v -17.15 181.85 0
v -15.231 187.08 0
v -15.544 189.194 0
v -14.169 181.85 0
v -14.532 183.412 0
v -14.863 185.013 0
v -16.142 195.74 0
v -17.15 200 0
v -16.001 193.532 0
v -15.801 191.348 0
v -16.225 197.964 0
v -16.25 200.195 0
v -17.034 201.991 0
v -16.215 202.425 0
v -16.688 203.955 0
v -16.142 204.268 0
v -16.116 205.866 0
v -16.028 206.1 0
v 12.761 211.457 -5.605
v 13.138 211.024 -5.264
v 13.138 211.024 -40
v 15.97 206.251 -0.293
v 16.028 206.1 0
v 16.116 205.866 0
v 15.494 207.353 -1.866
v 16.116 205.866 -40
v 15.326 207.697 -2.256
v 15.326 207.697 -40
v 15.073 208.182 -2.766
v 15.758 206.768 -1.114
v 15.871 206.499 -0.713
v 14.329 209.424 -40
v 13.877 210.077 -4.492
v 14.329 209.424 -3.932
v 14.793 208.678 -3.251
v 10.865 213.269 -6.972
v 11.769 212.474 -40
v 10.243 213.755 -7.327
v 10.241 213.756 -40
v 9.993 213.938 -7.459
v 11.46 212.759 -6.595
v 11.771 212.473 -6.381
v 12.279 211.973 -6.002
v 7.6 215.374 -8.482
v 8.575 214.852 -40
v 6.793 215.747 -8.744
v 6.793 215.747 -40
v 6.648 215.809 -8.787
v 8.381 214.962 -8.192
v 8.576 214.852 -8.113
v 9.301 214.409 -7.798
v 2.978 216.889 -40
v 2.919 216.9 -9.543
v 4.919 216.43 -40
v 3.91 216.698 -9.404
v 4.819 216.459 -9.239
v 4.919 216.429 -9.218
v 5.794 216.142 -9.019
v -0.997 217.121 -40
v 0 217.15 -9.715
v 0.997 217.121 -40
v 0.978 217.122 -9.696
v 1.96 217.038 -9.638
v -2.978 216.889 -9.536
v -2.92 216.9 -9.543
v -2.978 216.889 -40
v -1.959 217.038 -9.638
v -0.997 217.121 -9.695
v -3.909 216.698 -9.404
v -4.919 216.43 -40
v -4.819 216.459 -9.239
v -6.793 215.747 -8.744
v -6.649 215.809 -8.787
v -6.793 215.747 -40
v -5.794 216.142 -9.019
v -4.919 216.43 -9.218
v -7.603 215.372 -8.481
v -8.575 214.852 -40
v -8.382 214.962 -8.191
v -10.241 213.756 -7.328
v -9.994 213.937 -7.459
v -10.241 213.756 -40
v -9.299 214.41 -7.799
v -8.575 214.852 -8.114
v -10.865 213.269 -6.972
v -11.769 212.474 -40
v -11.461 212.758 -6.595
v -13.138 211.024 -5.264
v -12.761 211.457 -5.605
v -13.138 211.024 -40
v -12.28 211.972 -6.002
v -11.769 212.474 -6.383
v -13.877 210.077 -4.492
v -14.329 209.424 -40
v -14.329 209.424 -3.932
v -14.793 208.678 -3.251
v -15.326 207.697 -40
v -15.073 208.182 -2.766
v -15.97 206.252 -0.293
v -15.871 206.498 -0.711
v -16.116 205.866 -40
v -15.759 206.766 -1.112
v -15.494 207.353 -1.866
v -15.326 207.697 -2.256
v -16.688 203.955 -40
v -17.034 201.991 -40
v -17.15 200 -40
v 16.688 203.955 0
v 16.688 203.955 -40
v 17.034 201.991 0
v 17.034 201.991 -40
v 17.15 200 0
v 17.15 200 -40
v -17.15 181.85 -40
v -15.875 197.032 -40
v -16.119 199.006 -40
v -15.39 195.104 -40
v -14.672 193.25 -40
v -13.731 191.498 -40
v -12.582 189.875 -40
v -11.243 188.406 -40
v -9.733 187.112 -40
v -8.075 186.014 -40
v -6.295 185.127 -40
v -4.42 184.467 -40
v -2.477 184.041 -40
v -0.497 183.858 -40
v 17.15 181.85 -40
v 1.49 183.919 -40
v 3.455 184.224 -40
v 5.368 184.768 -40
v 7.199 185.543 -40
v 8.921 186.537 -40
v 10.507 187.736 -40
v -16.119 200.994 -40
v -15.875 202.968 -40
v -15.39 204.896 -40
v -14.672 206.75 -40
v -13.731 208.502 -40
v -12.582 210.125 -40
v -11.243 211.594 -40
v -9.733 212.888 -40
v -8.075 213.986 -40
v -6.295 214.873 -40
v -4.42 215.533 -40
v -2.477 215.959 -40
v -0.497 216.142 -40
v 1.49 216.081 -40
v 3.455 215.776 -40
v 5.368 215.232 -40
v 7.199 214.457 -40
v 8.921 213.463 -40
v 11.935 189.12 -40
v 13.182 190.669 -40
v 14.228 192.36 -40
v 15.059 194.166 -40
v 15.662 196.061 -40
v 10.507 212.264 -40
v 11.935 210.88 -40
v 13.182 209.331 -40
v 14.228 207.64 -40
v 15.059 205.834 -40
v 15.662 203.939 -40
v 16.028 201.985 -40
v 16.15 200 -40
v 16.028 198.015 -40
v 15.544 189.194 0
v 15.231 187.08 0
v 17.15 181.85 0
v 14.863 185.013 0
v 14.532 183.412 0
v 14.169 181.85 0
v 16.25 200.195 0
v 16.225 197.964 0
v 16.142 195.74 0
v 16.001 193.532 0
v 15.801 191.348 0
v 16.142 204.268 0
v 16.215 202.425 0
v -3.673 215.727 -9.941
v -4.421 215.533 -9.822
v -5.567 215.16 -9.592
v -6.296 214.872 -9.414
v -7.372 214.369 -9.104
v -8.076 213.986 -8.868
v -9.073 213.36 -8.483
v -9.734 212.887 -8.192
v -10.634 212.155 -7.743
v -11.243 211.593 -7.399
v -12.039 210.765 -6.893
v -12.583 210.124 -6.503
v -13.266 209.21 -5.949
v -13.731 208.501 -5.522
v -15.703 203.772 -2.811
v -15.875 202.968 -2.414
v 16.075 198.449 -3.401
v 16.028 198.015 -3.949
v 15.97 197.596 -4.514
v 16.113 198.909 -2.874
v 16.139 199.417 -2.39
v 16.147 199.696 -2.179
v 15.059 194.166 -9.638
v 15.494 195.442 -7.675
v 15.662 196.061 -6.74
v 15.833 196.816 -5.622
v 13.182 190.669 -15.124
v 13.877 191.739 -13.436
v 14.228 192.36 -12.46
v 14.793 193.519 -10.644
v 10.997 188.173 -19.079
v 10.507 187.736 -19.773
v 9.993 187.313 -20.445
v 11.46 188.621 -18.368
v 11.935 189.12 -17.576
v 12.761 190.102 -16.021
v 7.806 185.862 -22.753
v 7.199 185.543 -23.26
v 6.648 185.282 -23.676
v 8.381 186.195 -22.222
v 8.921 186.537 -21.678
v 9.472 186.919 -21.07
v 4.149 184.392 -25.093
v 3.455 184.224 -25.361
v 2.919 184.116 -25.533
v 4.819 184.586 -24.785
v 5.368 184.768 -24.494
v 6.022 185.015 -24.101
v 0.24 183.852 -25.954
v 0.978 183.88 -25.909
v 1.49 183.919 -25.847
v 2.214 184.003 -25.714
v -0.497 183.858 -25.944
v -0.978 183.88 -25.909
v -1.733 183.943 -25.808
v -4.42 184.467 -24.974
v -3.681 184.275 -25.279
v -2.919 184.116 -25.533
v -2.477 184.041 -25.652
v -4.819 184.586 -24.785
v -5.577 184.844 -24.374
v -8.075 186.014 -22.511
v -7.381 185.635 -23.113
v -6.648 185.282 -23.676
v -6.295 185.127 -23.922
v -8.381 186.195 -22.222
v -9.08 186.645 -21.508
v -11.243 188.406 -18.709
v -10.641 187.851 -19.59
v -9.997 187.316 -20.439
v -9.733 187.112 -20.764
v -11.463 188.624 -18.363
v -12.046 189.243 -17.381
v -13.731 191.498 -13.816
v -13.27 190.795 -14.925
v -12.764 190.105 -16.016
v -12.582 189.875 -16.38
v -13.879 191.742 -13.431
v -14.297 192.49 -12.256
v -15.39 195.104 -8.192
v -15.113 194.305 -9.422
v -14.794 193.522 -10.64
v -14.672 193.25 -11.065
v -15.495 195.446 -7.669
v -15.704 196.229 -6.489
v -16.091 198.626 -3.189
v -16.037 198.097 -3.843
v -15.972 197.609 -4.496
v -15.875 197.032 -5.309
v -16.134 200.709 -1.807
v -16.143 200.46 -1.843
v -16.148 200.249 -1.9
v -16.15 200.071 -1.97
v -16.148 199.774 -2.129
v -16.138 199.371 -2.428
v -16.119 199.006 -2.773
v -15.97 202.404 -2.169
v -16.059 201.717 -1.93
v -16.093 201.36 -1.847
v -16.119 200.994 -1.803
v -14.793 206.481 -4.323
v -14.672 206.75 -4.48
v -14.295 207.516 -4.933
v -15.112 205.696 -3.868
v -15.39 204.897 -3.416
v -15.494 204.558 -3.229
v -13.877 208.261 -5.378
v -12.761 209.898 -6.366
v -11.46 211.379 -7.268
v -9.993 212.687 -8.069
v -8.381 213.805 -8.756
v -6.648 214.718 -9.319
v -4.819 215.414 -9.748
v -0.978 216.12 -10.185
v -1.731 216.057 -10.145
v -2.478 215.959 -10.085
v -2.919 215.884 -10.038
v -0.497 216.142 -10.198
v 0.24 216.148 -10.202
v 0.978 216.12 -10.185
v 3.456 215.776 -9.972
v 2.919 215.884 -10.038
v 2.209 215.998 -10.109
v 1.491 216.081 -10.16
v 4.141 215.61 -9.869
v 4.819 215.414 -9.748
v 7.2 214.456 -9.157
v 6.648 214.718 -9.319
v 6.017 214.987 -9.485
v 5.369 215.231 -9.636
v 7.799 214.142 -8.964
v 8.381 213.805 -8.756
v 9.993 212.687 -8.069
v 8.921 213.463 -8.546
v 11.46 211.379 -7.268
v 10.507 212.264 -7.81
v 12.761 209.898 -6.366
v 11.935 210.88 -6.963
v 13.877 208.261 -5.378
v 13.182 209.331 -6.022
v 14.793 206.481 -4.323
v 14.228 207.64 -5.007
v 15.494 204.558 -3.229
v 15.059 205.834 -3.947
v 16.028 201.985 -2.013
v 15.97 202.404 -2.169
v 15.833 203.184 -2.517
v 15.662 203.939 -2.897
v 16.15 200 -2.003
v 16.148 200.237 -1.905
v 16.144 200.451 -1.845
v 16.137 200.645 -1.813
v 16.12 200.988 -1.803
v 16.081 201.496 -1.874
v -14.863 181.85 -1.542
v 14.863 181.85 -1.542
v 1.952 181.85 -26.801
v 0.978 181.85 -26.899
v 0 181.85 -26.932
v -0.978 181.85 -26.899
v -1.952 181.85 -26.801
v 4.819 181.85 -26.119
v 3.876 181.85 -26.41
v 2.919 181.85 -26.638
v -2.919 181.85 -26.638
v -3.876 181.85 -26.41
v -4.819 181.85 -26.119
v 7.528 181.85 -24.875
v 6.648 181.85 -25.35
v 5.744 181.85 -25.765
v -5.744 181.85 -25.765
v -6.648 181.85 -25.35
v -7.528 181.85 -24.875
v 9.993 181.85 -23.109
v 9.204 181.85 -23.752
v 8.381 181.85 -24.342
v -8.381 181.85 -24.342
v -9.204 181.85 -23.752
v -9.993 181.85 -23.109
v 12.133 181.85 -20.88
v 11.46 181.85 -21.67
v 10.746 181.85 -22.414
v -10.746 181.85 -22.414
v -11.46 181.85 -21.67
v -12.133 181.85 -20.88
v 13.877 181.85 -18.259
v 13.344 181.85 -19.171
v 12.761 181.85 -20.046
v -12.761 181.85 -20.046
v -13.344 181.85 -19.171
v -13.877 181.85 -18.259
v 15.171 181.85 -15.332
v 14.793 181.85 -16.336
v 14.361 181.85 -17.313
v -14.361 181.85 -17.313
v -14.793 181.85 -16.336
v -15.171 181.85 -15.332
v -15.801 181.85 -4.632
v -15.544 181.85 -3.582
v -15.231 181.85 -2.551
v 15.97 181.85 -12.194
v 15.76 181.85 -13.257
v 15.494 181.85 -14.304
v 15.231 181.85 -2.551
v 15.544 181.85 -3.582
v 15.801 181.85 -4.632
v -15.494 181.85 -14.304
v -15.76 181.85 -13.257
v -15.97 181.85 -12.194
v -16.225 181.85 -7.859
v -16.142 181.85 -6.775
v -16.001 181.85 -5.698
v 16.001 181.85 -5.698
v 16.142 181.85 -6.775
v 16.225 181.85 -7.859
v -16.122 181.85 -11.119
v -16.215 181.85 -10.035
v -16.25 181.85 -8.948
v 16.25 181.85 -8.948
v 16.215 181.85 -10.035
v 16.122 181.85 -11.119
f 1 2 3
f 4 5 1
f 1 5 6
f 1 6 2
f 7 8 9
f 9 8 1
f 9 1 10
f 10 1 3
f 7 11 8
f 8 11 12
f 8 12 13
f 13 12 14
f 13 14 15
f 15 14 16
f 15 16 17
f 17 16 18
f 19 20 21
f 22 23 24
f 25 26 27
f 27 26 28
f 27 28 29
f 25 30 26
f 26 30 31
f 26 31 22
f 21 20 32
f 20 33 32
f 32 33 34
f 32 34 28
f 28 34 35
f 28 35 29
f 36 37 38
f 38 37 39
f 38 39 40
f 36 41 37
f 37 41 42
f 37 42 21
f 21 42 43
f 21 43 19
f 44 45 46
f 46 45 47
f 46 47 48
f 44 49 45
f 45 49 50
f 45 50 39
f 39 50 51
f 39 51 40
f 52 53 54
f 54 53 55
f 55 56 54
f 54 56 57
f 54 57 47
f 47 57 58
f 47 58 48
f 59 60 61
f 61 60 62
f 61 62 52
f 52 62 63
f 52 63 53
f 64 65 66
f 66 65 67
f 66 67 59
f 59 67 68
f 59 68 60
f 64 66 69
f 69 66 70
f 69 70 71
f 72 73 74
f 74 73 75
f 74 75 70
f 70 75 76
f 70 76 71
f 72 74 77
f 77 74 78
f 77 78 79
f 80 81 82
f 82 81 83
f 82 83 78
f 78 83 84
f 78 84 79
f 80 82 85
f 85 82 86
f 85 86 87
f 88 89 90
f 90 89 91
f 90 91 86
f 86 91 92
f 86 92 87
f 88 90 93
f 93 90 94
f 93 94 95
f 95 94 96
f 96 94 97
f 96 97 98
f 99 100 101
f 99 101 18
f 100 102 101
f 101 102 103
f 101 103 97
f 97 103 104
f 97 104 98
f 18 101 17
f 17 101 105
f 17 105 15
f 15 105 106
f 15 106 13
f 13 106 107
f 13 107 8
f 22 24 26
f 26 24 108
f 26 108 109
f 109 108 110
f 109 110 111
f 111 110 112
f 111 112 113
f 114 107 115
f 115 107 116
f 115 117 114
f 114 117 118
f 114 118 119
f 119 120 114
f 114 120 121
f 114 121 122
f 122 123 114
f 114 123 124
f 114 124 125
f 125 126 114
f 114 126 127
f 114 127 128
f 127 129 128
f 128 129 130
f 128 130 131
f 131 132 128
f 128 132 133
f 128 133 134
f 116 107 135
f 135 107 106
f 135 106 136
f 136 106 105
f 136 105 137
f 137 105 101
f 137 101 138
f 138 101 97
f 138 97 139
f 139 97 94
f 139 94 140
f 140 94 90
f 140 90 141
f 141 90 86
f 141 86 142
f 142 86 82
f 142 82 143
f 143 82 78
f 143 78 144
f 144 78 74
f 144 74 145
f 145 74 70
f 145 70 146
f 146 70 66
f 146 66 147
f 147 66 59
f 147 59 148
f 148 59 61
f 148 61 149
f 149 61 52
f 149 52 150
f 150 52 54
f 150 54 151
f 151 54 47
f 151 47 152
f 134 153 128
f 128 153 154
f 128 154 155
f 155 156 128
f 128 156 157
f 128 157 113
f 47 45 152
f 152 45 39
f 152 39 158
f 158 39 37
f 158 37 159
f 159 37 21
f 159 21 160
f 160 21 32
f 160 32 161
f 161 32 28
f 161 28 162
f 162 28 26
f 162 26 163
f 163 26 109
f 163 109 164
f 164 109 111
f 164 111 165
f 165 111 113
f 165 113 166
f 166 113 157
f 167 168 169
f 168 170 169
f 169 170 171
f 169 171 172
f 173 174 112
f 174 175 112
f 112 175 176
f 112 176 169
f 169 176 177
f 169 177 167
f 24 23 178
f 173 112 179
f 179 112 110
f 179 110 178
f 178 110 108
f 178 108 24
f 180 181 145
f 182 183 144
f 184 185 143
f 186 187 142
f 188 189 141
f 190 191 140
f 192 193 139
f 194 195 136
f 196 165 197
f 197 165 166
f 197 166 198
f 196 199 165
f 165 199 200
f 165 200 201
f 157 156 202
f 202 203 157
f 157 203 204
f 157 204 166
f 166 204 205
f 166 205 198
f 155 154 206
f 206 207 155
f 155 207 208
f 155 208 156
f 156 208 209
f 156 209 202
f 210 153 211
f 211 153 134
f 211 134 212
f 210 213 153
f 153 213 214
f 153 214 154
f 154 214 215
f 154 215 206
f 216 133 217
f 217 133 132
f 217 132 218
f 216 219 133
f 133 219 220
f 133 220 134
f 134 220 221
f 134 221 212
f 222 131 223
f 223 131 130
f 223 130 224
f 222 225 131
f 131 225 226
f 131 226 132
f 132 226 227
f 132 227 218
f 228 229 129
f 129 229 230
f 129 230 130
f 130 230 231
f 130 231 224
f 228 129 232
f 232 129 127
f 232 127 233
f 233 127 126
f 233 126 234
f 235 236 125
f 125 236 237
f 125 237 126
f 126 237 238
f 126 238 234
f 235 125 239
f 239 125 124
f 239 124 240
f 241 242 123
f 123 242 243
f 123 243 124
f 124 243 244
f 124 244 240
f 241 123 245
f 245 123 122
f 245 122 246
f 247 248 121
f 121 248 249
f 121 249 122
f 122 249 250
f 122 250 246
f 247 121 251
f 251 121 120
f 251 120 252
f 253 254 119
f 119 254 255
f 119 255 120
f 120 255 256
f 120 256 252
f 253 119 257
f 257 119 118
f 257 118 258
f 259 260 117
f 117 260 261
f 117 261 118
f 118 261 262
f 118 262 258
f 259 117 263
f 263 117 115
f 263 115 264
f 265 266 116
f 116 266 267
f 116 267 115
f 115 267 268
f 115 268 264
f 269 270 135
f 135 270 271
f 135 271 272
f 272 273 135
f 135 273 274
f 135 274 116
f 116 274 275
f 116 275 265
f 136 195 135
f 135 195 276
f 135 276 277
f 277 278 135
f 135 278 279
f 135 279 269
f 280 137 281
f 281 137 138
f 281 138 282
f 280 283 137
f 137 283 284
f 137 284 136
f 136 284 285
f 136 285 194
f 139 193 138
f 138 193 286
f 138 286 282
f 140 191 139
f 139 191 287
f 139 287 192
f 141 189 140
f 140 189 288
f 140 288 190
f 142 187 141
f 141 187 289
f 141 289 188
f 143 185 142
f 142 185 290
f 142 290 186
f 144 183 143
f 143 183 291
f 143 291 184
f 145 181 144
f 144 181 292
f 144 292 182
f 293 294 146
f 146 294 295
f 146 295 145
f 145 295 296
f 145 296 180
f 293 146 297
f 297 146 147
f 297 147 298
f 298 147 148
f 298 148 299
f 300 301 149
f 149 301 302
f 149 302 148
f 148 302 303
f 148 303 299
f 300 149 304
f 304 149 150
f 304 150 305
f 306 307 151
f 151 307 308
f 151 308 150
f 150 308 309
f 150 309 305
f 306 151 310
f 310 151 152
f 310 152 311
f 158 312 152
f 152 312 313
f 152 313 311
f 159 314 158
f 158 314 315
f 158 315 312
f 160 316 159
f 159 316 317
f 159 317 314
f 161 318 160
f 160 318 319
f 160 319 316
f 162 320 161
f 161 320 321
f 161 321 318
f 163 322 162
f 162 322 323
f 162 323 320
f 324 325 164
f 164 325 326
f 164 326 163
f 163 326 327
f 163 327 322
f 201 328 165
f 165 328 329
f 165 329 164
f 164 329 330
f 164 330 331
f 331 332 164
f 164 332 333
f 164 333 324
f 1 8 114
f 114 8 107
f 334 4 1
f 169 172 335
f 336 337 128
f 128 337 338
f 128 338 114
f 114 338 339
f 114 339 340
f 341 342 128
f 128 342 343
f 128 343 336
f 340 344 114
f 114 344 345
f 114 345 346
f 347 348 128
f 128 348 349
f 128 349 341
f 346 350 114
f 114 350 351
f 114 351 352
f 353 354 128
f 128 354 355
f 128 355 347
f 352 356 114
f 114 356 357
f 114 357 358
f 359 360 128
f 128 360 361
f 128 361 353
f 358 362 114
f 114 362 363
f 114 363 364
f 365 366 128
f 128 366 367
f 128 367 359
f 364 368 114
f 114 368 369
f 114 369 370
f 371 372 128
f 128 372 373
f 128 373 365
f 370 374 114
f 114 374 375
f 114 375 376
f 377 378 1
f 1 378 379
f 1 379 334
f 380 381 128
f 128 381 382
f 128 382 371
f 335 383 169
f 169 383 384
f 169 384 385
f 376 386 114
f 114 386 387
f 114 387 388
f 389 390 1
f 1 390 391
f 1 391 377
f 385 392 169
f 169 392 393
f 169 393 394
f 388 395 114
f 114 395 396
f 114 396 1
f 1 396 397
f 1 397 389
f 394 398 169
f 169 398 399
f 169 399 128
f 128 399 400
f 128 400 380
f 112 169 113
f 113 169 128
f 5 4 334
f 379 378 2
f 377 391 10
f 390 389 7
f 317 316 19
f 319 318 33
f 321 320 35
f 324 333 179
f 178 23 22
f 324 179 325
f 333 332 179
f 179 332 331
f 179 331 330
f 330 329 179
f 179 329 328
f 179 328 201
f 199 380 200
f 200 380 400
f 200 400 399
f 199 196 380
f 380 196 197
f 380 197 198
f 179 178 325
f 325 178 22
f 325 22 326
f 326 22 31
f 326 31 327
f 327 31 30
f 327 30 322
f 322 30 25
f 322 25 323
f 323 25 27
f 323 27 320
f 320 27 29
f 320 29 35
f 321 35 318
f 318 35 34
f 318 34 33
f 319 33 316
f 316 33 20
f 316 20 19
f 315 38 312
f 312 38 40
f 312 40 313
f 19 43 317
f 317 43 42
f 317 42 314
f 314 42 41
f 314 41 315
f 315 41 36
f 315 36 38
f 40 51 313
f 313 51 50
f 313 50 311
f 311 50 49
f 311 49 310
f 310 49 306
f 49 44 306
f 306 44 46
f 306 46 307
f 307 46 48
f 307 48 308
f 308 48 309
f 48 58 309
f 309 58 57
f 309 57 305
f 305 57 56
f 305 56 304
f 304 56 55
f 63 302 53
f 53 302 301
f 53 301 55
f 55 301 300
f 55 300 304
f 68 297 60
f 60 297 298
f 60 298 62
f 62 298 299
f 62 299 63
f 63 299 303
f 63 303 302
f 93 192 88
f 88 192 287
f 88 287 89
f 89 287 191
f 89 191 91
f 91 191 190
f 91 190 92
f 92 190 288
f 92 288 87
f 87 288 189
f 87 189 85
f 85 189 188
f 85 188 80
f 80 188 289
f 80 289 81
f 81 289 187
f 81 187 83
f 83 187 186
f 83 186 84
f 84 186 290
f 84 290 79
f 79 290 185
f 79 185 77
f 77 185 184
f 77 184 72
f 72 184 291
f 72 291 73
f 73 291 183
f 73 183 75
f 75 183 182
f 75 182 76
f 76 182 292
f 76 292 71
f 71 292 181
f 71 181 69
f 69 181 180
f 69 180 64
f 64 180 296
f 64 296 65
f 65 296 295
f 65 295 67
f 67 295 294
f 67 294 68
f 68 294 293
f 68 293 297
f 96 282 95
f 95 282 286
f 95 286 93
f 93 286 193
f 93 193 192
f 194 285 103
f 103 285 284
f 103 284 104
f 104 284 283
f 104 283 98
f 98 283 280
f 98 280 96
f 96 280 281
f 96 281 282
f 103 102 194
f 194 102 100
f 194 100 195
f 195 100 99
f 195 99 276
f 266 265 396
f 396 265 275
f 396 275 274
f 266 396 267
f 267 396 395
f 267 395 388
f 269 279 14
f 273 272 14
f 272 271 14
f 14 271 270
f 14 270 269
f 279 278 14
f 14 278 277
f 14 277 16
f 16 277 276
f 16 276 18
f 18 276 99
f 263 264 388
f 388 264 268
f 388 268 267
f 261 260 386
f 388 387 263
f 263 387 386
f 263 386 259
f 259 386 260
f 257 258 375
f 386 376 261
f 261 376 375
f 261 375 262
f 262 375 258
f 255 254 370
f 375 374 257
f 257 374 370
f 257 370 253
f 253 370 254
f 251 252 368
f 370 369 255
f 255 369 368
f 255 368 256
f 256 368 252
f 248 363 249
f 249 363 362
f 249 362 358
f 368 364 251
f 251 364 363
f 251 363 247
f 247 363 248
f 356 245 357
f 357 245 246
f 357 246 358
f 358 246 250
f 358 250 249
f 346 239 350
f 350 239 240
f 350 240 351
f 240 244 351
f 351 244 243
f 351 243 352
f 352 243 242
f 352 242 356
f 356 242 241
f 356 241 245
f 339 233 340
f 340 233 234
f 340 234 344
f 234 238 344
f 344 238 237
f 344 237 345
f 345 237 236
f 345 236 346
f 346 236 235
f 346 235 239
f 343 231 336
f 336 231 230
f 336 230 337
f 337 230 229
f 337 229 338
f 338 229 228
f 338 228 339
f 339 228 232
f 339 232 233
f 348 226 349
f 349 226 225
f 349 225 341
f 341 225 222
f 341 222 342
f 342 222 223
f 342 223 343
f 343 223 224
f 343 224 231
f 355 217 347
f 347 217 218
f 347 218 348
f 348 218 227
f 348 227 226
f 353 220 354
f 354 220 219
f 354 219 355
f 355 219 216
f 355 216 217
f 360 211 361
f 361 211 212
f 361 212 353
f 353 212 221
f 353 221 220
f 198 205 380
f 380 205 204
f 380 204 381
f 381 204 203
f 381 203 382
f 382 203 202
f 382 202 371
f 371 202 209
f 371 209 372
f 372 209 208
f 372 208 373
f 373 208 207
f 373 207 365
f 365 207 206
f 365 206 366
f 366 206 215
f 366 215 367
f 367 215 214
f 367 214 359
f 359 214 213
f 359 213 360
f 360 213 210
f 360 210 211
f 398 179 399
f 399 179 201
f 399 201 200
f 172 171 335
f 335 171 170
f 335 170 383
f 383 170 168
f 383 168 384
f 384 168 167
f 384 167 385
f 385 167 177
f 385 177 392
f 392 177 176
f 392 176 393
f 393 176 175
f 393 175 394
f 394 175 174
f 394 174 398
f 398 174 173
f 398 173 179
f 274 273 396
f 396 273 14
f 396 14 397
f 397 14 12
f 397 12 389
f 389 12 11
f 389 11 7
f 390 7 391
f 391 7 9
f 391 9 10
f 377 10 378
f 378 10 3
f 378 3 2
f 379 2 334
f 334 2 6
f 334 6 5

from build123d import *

# Parameters (mm, degrees)
SKETCH1_R           = 17.15
SKETCH1_R_2         = 16.15
BOSS_EXTRUDE1_DEPTH = 40
BOSS_EXTRUDE3_DEPTH = 40
SKETCH2_R           = 16.25
CUT_EXTRUDE1_DEPTH  = 302.327569717


with BuildPart() as part:
    # Sketch1 → Boss-Extrude1 (new body)
    with BuildSketch(Plane.XY):
        with Locations((0, 200)):
            Circle(SKETCH1_R)
        with Locations((0, 200)):
            Circle(SKETCH1_R_2, mode=Mode.SUBTRACT)
    extrude(amount=-BOSS_EXTRUDE1_DEPTH)

    # Sketch4 → Boss-Extrude3 (add)
    with BuildSketch(Plane(origin=(0, 0, -40), x_dir=(-1, 0, 0), z_dir=(0, 0, -1))):
        Polygon((17.15, 182.85), (17.15, 181.85), (-17.15, 181.85), (-17.15, 182.85), (0, 182.85), align=None)
        with BuildLine():
            Line((17.15, 182.85), (17.15, 200))
            ThreePointArc((17.15, 200), (12.126881297, 187.873118703), (0, 182.85))
            Line((0, 182.85), (17.15, 182.85))
        make_face()
        with BuildLine():
            ThreePointArc((0, 182.85), (-12.126881297, 187.873118703), (-17.15, 200))
            Line((-17.15, 200), (-17.15, 182.85))
            Line((-17.15, 182.85), (0, 182.85))
        make_face()
    extrude(amount=-BOSS_EXTRUDE3_DEPTH)

    # Sketch2 → Cut-Extrude1 (cut, through all)
    with BuildSketch(Plane(origin=(0, 401.975230219, 196.056419574), x_dir=(1, 0, 0), z_dir=(0, 0.898794046, 0.438371147))):
        with Locations((0, 87.674229358)):
            Circle(SKETCH2_R)
    extrude(amount=-CUT_EXTRUDE1_DEPTH, mode=Mode.SUBTRACT)


solid = part.part
